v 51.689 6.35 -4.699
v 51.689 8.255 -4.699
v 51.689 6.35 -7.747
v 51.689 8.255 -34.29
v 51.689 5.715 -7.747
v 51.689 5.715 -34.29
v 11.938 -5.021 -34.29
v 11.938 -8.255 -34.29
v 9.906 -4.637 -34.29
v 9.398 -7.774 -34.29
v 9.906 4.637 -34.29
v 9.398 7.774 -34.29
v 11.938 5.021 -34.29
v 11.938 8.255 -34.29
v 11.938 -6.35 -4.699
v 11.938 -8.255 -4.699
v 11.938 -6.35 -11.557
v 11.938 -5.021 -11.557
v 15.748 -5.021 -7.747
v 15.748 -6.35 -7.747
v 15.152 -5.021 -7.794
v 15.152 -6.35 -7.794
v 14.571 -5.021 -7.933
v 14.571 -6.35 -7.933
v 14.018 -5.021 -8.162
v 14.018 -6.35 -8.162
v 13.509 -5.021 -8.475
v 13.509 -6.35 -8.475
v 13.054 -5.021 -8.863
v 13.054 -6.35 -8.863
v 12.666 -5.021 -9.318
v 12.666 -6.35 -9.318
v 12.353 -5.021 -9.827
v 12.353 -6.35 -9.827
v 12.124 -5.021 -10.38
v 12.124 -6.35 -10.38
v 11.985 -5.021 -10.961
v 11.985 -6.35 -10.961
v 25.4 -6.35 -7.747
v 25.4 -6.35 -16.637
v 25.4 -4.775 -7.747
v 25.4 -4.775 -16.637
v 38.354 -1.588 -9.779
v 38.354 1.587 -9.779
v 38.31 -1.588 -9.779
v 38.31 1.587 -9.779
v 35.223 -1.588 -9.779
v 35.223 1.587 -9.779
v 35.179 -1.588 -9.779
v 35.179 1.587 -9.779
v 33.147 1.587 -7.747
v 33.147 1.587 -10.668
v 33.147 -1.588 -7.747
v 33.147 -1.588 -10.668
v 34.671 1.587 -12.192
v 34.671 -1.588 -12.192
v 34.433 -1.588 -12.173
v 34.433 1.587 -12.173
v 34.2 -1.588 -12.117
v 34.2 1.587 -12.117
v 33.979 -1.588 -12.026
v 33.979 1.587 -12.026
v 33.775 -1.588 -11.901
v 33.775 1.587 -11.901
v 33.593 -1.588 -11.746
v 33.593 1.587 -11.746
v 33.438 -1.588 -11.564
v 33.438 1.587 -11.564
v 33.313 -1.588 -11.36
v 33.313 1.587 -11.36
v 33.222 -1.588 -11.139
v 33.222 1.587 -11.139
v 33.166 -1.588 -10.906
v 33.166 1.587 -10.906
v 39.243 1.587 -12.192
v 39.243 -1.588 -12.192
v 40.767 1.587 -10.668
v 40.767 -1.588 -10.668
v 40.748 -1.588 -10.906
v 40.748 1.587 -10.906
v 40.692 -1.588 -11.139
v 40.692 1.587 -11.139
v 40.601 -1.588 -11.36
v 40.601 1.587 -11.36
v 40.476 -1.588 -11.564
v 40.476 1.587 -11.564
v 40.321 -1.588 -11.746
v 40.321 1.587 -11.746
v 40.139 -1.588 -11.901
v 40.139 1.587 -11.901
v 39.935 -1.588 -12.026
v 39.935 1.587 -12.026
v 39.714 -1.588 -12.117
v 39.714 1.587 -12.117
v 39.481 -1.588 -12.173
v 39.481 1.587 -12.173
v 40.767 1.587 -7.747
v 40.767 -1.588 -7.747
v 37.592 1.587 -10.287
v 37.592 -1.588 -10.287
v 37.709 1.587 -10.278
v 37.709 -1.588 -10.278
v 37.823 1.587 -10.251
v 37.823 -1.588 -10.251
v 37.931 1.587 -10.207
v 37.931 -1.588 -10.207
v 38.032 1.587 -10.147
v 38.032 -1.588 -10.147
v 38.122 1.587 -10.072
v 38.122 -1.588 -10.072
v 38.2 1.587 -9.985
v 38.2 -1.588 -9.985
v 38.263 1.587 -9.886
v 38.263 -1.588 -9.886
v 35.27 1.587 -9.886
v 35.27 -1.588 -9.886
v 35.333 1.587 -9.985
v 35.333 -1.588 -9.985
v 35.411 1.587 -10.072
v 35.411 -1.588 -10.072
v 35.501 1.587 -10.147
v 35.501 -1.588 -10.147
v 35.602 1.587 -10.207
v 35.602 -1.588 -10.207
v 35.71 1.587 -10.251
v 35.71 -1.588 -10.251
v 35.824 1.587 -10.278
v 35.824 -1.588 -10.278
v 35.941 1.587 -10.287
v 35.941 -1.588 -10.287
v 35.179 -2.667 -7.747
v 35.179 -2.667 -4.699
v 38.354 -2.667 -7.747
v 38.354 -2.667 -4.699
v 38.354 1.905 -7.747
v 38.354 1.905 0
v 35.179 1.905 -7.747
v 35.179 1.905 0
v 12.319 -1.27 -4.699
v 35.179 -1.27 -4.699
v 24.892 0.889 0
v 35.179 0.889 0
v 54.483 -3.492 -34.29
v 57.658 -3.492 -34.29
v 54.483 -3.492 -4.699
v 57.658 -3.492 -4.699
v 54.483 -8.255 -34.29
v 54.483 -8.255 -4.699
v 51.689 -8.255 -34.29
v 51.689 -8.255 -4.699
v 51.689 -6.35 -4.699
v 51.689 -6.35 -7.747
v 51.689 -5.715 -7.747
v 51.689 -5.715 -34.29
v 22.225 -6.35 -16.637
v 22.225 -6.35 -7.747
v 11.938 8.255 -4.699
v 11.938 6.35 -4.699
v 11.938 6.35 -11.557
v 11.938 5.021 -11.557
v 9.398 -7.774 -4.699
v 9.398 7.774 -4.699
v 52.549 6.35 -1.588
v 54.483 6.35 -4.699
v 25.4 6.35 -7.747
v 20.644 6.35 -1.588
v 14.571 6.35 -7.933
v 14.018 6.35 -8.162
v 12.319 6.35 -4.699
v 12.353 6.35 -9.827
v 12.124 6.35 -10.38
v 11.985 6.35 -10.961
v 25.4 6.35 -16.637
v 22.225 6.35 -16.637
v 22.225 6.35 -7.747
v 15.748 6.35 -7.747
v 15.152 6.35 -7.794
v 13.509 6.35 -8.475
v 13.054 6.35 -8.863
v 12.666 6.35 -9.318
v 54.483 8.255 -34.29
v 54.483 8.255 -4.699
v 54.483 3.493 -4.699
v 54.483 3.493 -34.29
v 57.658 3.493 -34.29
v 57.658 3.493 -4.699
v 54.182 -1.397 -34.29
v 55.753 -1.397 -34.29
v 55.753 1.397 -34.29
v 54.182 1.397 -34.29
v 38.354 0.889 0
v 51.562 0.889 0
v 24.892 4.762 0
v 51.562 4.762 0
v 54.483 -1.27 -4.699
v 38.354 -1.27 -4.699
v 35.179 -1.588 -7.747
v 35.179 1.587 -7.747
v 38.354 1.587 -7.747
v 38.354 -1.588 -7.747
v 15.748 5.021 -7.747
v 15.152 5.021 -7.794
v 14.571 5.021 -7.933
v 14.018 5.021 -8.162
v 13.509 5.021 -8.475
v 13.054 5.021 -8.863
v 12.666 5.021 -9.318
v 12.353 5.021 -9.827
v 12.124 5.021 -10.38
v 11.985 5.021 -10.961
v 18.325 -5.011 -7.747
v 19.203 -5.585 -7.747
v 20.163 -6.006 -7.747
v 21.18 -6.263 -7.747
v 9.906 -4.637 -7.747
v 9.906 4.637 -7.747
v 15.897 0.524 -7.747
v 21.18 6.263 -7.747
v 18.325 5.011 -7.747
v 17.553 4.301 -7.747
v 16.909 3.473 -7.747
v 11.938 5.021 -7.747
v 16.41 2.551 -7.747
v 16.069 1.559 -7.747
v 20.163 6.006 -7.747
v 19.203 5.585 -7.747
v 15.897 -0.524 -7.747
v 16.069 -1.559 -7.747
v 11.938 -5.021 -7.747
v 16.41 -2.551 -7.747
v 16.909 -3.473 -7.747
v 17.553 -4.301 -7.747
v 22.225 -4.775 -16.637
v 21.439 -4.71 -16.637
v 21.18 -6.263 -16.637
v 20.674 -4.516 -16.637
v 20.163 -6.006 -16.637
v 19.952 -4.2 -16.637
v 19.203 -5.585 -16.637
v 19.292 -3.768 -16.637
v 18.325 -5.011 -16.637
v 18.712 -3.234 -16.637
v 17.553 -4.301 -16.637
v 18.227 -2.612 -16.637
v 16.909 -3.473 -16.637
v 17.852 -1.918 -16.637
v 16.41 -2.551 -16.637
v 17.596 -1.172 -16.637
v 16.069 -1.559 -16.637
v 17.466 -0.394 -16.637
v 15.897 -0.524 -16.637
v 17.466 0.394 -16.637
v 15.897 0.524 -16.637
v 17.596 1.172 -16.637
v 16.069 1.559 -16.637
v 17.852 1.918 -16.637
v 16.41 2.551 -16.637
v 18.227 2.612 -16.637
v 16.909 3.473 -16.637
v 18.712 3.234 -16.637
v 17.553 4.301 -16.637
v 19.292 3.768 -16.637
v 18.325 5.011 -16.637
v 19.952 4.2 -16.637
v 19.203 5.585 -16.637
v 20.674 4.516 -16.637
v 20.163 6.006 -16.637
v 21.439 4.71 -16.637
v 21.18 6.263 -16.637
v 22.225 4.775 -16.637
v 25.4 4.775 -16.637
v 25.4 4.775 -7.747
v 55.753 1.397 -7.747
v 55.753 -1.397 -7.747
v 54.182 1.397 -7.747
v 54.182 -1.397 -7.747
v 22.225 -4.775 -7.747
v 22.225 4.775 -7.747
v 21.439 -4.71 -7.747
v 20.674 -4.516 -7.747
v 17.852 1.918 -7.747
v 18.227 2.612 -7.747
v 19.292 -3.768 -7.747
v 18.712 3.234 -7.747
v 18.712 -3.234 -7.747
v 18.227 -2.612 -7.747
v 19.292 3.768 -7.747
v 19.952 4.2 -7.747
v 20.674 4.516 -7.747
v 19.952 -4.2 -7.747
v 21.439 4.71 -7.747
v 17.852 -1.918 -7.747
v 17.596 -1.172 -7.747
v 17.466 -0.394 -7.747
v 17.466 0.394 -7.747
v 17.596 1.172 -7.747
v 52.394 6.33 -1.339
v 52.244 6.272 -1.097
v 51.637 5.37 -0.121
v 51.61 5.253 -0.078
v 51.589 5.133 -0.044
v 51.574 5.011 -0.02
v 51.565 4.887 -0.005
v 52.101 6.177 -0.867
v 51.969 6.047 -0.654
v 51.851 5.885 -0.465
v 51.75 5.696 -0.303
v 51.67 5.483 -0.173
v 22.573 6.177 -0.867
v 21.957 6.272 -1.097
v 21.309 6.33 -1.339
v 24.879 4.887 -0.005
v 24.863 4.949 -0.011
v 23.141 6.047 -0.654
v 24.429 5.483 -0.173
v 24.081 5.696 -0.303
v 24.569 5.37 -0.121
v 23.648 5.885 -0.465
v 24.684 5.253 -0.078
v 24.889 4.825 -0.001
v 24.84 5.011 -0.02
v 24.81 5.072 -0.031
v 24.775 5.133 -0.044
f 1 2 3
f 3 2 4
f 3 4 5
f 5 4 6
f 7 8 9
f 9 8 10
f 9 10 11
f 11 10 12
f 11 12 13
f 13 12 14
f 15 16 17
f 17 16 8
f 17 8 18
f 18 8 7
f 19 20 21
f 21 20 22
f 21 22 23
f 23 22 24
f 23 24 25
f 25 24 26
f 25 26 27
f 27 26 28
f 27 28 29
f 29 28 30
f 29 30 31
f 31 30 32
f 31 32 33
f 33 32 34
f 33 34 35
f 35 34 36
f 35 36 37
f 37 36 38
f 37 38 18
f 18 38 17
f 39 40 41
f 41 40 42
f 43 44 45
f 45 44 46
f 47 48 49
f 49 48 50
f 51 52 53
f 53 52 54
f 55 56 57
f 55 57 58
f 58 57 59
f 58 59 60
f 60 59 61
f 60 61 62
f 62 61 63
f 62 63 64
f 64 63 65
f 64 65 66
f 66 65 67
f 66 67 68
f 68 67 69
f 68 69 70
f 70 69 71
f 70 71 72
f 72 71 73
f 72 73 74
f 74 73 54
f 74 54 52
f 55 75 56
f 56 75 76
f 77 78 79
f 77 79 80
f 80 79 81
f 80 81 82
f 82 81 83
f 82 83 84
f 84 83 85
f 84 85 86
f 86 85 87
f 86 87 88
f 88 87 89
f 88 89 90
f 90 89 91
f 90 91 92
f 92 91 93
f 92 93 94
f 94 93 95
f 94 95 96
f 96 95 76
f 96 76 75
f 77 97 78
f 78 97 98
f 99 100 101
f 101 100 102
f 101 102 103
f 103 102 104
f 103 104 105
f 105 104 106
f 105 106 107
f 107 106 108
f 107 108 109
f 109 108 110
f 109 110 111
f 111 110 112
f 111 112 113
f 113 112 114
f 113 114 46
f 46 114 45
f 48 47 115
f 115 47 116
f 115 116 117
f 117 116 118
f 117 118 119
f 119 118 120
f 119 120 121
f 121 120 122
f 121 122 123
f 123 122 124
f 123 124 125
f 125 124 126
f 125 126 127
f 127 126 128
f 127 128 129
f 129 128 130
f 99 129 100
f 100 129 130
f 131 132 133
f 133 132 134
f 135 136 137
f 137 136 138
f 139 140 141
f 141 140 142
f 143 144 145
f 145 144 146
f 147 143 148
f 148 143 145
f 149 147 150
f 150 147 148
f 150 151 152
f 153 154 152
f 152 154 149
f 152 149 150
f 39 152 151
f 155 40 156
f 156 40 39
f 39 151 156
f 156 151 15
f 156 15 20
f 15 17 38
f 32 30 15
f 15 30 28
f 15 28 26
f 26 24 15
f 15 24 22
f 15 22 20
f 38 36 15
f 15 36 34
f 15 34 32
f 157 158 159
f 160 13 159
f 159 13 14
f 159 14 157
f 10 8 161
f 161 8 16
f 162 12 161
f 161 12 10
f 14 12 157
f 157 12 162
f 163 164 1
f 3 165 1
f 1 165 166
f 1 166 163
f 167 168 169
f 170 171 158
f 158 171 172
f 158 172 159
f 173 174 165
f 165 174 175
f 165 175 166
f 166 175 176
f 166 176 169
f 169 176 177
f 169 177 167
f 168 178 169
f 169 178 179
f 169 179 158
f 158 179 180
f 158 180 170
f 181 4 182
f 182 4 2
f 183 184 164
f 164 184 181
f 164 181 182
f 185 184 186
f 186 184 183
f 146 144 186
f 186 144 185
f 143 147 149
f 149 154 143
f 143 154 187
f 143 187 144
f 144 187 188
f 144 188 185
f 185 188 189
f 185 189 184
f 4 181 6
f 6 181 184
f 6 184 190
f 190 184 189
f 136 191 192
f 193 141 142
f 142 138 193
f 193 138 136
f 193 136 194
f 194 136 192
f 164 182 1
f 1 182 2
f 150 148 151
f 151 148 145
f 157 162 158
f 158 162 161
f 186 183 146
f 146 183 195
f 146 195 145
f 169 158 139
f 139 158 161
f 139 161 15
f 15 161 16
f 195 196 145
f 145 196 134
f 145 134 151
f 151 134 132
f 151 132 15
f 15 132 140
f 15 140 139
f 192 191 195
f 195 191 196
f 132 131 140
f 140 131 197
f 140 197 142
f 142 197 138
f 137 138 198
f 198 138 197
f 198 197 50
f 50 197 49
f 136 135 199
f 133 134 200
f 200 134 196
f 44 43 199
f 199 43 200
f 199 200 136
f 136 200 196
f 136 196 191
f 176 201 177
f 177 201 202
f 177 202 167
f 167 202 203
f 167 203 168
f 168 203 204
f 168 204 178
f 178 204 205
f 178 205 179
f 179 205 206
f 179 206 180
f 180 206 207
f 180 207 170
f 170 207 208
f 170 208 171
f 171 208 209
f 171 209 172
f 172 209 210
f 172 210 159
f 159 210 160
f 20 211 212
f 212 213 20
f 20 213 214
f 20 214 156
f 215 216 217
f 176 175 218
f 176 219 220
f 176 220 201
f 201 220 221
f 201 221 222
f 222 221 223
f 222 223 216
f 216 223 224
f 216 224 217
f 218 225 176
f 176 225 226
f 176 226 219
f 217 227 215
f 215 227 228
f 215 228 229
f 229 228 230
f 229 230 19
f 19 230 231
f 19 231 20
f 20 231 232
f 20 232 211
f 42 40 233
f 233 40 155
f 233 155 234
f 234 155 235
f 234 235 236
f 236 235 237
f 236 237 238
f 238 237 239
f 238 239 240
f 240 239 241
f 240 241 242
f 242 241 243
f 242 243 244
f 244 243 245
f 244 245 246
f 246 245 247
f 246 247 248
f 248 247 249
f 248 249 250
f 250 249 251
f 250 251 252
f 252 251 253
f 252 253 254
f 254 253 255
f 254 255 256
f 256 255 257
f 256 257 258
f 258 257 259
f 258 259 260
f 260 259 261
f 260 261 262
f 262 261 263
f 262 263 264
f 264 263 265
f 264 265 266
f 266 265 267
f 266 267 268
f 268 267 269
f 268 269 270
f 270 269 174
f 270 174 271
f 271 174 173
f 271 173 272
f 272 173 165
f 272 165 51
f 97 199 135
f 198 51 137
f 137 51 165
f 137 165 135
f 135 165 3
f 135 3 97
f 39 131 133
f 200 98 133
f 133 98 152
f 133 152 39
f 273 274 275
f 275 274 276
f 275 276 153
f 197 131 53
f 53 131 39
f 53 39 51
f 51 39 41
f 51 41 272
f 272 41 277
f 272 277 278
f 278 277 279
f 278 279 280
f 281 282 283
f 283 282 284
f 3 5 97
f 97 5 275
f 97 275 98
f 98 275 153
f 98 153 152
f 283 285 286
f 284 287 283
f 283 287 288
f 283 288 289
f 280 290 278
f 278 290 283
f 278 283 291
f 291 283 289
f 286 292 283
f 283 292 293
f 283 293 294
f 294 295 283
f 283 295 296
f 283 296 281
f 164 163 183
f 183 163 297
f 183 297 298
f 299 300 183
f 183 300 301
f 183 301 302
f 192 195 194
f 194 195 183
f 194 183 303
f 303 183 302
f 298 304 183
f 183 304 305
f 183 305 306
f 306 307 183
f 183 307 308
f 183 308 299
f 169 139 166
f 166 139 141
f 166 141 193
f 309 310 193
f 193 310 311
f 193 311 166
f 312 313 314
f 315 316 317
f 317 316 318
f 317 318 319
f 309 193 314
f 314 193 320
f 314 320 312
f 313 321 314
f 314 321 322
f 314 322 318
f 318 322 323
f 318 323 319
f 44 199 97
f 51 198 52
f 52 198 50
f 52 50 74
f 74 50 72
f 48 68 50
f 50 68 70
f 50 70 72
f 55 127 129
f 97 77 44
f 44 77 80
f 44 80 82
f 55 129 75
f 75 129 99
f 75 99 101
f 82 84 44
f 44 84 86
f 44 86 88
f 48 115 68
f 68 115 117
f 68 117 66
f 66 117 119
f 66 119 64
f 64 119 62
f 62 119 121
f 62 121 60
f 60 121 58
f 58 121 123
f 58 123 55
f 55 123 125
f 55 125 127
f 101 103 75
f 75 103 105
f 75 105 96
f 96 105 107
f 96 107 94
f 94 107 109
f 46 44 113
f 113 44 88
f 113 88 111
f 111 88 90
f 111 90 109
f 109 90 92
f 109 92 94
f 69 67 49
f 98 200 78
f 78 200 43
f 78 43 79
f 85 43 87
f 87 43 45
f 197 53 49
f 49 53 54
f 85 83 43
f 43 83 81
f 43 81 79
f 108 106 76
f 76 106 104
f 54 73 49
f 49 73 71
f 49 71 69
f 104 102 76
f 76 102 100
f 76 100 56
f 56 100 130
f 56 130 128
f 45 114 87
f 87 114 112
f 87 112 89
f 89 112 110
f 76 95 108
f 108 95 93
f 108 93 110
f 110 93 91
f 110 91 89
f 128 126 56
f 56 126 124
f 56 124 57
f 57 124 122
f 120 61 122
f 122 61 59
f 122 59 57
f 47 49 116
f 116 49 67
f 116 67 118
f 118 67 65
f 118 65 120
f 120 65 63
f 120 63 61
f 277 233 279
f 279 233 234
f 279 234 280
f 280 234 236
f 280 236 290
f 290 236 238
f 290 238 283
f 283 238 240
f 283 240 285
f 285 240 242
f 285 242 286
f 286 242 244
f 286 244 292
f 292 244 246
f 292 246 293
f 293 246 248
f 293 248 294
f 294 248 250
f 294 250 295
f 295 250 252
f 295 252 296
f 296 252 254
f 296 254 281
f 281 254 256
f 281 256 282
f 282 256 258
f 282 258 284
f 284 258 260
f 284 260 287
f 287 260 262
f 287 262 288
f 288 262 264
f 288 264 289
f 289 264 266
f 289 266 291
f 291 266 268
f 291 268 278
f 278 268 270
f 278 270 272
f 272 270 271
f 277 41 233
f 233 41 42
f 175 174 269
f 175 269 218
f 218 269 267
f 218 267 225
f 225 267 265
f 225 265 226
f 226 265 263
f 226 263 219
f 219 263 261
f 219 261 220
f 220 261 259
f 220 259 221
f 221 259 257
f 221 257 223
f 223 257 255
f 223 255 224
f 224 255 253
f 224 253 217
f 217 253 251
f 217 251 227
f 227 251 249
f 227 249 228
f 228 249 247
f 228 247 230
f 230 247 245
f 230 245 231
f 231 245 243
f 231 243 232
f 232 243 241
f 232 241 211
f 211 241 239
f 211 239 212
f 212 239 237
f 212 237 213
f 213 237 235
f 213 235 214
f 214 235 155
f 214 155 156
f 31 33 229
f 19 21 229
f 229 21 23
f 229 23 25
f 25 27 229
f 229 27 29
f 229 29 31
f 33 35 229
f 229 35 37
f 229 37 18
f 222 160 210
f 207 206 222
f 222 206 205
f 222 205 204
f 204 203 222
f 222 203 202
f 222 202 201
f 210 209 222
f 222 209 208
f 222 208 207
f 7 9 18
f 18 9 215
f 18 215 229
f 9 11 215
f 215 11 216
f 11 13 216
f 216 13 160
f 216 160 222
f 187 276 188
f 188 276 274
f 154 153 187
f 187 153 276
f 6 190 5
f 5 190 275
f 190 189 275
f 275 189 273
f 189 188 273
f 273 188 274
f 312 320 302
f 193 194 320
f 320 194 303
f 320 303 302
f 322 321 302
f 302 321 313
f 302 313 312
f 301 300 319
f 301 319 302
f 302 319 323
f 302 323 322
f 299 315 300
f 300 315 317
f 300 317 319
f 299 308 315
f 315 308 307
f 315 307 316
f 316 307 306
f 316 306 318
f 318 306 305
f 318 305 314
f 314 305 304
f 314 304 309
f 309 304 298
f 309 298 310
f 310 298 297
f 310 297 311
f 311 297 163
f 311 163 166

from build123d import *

# Parameters (mm, degrees)
BOSS_EXTRUDE1_DEPTH    = 34.29
SKETCH2_W              = 4.699
SKETCH2_H              = 1.905
CUT_EXTRUDE1_DEPTH     = 60.774381845
SKETCH3_W              = 3.175
SKETCH3_H              = 4.572
CUT_EXTRUDE2_DEPTH     = 9.779
CUT_EXTRUDE3_DEPTH     = 70.085665402
CUT_EXTRUDE4_START     = -26.543
CUT_EXTRUDE4_OUTLINE_W = 7.62
CUT_EXTRUDE4_OUTLINE_H = 4.7625
CUT_EXTRUDE4_DEPTH     = 26.543
FILLET4_R              = 1.5875


# Read off the part's stored shape, not the designer's step: Cut-Extrude4
with BuildPart() as part:
    # Sketch1 → Boss-Extrude1 (new body)
    with BuildSketch(Plane.XY):
        Polygon((9.398, 6.35), (9.398, -6.35), (9.398, -7.774459459), (11.938, -8.255), (11.938, -6.35), (51.689, -6.35), (51.689, -8.255), (54.483, -8.255), (54.483, -3.4925), (57.658, -3.4925), (57.658, 3.4925), (54.483, 3.4925), (54.483, 8.255), (51.689, 8.255), (51.689, 6.35), (11.938, 6.35), (11.938, 8.255), (9.398, 7.774459459), align=None)
    extrude(amount=-BOSS_EXTRUDE1_DEPTH)

    # Sketch2 → Cut-Extrude1 (cut, through all)
    with BuildSketch(Plane.ZY.offset(-9.398)):
        with Locations((-2.3495, 7.3025)):
            Rectangle(SKETCH2_W, SKETCH2_H)
        Polygon((-4.699, -8.255), (-4.699, -1.27), (0, 0.889), (0, -8.255), align=None)
    extrude(amount=-CUT_EXTRUDE1_DEPTH, mode=Mode.SUBTRACT)

    # Sketch3 → Cut-Extrude2 (cut)
    with BuildSketch(Plane.XY):
        with Locations((36.7665, -0.381)):
            Rectangle(SKETCH3_W, SKETCH3_H)
    extrude(amount=-CUT_EXTRUDE2_DEPTH, mode=Mode.SUBTRACT)

    # Sketch4 → Cut-Extrude3 (cut, through all)
    with BuildSketch(Plane.XZ.offset(8.255)):
        with BuildLine():
            Line((51.689, -34.29), (51.689, -7.747))
            Line((51.689, -7.747), (40.767, -7.747))
            Line((40.767, -7.747), (40.767, -10.668))
            ThreePointArc((40.767, -10.668), (40.320630735, -11.745630735), (39.243, -12.192))
            Line((39.243, -12.192), (34.671, -12.192))
            ThreePointArc((34.671, -12.192), (33.593369265, -11.745630735), (33.147, -10.668))
            Line((33.147, -10.668), (33.147, -7.747))
            Line((33.147, -7.747), (25.4, -7.747))
            Line((25.4, -7.747), (25.4, -16.637))
            Line((25.4, -16.637), (15.875, -16.637))
            Line((15.875, -16.637), (15.875, -7.747))
            Line((15.875, -7.747), (15.748, -7.747))
            ThreePointArc((15.748, -7.747), (13.053923164, -8.862923164), (11.938, -11.557))
            Line((11.938, -11.557), (11.938, -34.29))
            Line((11.938, -34.29), (51.689, -34.29))
        make_face()
        with BuildLine():
            Line((35.179, -7.747), (38.354, -7.747))
            Line((38.354, -7.747), (38.354, -9.525))
            ThreePointArc((38.354, -9.525), (38.130815367, -10.063815367), (37.592, -10.287))
            Line((37.592, -10.287), (35.941, -10.287))
            ThreePointArc((35.941, -10.287), (35.402184633, -10.063815367), (35.179, -9.525))
            Line((35.179, -9.525), (35.179, -7.747))
        make_face()
        Polygon((57.658, -4.699), (54.483, -4.699), (51.562, 0), (57.658, 0), align=None)
        Polygon((6.604, -4.699), (12.319, -4.699), (24.892, 0), (6.604, 0), align=None)
    extrude(amount=-CUT_EXTRUDE3_DEPTH, mode=Mode.SUBTRACT)

    # Cut-Extrude4 outline → Cut-Extrude4 (cut)
    with BuildSketch(Plane(origin=(0, 0, -34.29), x_dir=(-1, 0, 0), z_dir=(0, 0, -1)).offset(CUT_EXTRUDE4_START)):
        with BuildLine():
            Line((-22.225, -6.35), (-15.875, -6.35))
            Line((-15.875, -6.35), (-15.875, -5.021000706))
            Line((-15.875, -5.021000706), (-11.938, -5.021000706))
            Line((-11.938, -5.021000706), (-9.906, -4.636568273))
            Line((-9.906, -4.636568273), (-9.906, 4.636568273))
            Line((-9.906, 4.636568273), (-11.938, 5.021000706))
            Line((-11.938, 5.021000706), (-15.875, 5.021000706))
            Line((-15.875, 5.021000706), (-15.875, 6.35))
            Line((-15.875, 6.35), (-22.225, 6.35))
            ThreePointArc((-22.225, 6.35), (-15.875, 0), (-22.225, -6.35))
        make_face()
        with Locations((-36.957, -3.96875)):
            Rectangle(CUT_EXTRUDE4_OUTLINE_W, CUT_EXTRUDE4_OUTLINE_H)
        with BuildLine():
            Line((-25.4, 4.7752), (-25.4, -4.7752))
            Line((-25.4, -4.7752), (-22.225, -4.7752))
            ThreePointArc((-22.225, -4.7752), (-17.4498, 0), (-22.225, 4.7752))
            Line((-22.225, 4.7752), (-25.4, 4.7752))
        make_face()
        with Locations((-36.957, 3.96875)):
            Rectangle(CUT_EXTRUDE4_OUTLINE_W, CUT_EXTRUDE4_OUTLINE_H)
        Polygon((-54.181998462, -1.397), (-51.689, -5.715), (-51.689, 5.715), (-54.181998462, 1.397), (-55.753, 1.397), (-55.753, -1.397), align=None)
    extrude(amount=CUT_EXTRUDE4_DEPTH, mode=Mode.SUBTRACT)

    # Fillet4
    fillet4_edges = [part.edges().sort_by_distance(p)[0] for p in [
        (38.227, 6.35, 0),
    ]]
    fillet(fillet4_edges, radius=FILLET4_R)


solid = part.part
